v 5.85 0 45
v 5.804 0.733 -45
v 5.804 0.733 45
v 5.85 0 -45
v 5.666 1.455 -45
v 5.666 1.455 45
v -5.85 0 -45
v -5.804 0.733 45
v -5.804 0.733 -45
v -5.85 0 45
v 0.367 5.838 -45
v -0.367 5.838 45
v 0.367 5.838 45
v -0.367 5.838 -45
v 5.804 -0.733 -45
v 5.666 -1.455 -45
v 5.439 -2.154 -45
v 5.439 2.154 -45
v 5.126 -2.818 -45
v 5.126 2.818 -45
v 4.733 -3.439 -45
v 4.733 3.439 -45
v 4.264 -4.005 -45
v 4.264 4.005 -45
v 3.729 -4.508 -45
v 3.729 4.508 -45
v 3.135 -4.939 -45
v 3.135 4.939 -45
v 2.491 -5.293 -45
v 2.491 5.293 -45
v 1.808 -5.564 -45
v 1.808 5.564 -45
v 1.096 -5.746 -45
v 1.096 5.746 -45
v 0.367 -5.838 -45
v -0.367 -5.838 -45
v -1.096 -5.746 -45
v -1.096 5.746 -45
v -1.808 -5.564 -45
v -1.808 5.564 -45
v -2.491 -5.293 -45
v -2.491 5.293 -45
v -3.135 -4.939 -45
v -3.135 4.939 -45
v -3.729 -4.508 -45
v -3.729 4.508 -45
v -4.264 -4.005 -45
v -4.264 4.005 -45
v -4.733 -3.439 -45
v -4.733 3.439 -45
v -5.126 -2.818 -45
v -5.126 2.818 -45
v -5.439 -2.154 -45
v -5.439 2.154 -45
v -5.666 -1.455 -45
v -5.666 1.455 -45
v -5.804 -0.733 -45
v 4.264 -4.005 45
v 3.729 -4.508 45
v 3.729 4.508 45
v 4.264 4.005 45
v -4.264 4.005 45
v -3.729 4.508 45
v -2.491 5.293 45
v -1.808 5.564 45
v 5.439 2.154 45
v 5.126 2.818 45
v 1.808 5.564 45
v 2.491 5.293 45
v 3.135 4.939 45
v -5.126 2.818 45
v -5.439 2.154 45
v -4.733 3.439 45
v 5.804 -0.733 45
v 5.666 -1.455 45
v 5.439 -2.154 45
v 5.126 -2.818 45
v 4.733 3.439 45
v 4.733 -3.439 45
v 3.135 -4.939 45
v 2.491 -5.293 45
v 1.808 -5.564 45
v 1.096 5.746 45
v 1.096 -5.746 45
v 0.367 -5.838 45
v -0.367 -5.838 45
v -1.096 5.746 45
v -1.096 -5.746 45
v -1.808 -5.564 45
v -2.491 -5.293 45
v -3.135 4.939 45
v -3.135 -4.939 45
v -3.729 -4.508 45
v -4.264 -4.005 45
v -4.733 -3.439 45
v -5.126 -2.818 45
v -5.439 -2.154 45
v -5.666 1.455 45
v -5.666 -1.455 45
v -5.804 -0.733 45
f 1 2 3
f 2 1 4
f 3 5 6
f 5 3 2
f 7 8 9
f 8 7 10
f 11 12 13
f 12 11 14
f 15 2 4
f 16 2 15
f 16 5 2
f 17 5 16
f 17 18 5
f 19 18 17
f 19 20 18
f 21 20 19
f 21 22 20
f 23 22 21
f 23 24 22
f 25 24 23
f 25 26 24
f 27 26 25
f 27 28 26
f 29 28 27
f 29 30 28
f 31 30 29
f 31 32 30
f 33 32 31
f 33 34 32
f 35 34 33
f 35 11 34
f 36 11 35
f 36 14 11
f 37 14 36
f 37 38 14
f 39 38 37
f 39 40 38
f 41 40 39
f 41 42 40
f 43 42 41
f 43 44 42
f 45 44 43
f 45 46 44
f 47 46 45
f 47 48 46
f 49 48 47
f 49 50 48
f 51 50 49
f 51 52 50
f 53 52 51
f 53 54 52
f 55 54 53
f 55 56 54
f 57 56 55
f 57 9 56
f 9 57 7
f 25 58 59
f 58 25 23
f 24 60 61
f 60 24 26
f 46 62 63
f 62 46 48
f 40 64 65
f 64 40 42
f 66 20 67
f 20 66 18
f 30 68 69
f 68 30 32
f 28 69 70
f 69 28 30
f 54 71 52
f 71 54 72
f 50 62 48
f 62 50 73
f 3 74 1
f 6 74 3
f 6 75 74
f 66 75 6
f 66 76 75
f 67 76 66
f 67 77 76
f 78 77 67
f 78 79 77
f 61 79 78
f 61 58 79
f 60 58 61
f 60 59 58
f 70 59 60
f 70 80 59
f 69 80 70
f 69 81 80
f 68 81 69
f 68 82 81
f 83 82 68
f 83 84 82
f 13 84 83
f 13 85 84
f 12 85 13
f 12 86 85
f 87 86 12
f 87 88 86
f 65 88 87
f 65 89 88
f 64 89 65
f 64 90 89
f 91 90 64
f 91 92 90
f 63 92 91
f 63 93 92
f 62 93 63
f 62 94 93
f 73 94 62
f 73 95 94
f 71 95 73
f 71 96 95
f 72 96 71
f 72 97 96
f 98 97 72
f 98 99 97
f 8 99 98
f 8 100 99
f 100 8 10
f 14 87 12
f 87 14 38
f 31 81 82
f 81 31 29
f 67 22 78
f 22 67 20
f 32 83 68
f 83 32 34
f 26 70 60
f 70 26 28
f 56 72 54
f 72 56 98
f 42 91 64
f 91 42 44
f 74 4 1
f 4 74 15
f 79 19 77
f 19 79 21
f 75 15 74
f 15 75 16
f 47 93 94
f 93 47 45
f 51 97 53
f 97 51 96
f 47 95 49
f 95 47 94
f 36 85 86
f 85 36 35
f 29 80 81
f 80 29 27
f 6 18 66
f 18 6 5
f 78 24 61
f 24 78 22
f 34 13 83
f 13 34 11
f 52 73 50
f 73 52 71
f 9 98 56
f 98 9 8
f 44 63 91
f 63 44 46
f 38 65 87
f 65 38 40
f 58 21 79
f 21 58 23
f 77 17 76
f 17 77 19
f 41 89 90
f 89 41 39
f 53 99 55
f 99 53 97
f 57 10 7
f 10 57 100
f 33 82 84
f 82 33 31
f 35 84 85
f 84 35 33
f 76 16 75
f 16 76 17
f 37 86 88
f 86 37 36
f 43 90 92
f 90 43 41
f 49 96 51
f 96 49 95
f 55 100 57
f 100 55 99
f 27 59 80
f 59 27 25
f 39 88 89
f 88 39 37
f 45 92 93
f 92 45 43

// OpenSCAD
$fn = 50;


difference() {
	union() {
		translate(v = [0, 0, -45.0000000000]) {
			cylinder(h = 90, r = 5.8500000000);
		}
	}
	union() {
		translate(v = [0, 0, -100.0000000000]) {
			cylinder(h = 200, r = 0);
		}
	}
}
